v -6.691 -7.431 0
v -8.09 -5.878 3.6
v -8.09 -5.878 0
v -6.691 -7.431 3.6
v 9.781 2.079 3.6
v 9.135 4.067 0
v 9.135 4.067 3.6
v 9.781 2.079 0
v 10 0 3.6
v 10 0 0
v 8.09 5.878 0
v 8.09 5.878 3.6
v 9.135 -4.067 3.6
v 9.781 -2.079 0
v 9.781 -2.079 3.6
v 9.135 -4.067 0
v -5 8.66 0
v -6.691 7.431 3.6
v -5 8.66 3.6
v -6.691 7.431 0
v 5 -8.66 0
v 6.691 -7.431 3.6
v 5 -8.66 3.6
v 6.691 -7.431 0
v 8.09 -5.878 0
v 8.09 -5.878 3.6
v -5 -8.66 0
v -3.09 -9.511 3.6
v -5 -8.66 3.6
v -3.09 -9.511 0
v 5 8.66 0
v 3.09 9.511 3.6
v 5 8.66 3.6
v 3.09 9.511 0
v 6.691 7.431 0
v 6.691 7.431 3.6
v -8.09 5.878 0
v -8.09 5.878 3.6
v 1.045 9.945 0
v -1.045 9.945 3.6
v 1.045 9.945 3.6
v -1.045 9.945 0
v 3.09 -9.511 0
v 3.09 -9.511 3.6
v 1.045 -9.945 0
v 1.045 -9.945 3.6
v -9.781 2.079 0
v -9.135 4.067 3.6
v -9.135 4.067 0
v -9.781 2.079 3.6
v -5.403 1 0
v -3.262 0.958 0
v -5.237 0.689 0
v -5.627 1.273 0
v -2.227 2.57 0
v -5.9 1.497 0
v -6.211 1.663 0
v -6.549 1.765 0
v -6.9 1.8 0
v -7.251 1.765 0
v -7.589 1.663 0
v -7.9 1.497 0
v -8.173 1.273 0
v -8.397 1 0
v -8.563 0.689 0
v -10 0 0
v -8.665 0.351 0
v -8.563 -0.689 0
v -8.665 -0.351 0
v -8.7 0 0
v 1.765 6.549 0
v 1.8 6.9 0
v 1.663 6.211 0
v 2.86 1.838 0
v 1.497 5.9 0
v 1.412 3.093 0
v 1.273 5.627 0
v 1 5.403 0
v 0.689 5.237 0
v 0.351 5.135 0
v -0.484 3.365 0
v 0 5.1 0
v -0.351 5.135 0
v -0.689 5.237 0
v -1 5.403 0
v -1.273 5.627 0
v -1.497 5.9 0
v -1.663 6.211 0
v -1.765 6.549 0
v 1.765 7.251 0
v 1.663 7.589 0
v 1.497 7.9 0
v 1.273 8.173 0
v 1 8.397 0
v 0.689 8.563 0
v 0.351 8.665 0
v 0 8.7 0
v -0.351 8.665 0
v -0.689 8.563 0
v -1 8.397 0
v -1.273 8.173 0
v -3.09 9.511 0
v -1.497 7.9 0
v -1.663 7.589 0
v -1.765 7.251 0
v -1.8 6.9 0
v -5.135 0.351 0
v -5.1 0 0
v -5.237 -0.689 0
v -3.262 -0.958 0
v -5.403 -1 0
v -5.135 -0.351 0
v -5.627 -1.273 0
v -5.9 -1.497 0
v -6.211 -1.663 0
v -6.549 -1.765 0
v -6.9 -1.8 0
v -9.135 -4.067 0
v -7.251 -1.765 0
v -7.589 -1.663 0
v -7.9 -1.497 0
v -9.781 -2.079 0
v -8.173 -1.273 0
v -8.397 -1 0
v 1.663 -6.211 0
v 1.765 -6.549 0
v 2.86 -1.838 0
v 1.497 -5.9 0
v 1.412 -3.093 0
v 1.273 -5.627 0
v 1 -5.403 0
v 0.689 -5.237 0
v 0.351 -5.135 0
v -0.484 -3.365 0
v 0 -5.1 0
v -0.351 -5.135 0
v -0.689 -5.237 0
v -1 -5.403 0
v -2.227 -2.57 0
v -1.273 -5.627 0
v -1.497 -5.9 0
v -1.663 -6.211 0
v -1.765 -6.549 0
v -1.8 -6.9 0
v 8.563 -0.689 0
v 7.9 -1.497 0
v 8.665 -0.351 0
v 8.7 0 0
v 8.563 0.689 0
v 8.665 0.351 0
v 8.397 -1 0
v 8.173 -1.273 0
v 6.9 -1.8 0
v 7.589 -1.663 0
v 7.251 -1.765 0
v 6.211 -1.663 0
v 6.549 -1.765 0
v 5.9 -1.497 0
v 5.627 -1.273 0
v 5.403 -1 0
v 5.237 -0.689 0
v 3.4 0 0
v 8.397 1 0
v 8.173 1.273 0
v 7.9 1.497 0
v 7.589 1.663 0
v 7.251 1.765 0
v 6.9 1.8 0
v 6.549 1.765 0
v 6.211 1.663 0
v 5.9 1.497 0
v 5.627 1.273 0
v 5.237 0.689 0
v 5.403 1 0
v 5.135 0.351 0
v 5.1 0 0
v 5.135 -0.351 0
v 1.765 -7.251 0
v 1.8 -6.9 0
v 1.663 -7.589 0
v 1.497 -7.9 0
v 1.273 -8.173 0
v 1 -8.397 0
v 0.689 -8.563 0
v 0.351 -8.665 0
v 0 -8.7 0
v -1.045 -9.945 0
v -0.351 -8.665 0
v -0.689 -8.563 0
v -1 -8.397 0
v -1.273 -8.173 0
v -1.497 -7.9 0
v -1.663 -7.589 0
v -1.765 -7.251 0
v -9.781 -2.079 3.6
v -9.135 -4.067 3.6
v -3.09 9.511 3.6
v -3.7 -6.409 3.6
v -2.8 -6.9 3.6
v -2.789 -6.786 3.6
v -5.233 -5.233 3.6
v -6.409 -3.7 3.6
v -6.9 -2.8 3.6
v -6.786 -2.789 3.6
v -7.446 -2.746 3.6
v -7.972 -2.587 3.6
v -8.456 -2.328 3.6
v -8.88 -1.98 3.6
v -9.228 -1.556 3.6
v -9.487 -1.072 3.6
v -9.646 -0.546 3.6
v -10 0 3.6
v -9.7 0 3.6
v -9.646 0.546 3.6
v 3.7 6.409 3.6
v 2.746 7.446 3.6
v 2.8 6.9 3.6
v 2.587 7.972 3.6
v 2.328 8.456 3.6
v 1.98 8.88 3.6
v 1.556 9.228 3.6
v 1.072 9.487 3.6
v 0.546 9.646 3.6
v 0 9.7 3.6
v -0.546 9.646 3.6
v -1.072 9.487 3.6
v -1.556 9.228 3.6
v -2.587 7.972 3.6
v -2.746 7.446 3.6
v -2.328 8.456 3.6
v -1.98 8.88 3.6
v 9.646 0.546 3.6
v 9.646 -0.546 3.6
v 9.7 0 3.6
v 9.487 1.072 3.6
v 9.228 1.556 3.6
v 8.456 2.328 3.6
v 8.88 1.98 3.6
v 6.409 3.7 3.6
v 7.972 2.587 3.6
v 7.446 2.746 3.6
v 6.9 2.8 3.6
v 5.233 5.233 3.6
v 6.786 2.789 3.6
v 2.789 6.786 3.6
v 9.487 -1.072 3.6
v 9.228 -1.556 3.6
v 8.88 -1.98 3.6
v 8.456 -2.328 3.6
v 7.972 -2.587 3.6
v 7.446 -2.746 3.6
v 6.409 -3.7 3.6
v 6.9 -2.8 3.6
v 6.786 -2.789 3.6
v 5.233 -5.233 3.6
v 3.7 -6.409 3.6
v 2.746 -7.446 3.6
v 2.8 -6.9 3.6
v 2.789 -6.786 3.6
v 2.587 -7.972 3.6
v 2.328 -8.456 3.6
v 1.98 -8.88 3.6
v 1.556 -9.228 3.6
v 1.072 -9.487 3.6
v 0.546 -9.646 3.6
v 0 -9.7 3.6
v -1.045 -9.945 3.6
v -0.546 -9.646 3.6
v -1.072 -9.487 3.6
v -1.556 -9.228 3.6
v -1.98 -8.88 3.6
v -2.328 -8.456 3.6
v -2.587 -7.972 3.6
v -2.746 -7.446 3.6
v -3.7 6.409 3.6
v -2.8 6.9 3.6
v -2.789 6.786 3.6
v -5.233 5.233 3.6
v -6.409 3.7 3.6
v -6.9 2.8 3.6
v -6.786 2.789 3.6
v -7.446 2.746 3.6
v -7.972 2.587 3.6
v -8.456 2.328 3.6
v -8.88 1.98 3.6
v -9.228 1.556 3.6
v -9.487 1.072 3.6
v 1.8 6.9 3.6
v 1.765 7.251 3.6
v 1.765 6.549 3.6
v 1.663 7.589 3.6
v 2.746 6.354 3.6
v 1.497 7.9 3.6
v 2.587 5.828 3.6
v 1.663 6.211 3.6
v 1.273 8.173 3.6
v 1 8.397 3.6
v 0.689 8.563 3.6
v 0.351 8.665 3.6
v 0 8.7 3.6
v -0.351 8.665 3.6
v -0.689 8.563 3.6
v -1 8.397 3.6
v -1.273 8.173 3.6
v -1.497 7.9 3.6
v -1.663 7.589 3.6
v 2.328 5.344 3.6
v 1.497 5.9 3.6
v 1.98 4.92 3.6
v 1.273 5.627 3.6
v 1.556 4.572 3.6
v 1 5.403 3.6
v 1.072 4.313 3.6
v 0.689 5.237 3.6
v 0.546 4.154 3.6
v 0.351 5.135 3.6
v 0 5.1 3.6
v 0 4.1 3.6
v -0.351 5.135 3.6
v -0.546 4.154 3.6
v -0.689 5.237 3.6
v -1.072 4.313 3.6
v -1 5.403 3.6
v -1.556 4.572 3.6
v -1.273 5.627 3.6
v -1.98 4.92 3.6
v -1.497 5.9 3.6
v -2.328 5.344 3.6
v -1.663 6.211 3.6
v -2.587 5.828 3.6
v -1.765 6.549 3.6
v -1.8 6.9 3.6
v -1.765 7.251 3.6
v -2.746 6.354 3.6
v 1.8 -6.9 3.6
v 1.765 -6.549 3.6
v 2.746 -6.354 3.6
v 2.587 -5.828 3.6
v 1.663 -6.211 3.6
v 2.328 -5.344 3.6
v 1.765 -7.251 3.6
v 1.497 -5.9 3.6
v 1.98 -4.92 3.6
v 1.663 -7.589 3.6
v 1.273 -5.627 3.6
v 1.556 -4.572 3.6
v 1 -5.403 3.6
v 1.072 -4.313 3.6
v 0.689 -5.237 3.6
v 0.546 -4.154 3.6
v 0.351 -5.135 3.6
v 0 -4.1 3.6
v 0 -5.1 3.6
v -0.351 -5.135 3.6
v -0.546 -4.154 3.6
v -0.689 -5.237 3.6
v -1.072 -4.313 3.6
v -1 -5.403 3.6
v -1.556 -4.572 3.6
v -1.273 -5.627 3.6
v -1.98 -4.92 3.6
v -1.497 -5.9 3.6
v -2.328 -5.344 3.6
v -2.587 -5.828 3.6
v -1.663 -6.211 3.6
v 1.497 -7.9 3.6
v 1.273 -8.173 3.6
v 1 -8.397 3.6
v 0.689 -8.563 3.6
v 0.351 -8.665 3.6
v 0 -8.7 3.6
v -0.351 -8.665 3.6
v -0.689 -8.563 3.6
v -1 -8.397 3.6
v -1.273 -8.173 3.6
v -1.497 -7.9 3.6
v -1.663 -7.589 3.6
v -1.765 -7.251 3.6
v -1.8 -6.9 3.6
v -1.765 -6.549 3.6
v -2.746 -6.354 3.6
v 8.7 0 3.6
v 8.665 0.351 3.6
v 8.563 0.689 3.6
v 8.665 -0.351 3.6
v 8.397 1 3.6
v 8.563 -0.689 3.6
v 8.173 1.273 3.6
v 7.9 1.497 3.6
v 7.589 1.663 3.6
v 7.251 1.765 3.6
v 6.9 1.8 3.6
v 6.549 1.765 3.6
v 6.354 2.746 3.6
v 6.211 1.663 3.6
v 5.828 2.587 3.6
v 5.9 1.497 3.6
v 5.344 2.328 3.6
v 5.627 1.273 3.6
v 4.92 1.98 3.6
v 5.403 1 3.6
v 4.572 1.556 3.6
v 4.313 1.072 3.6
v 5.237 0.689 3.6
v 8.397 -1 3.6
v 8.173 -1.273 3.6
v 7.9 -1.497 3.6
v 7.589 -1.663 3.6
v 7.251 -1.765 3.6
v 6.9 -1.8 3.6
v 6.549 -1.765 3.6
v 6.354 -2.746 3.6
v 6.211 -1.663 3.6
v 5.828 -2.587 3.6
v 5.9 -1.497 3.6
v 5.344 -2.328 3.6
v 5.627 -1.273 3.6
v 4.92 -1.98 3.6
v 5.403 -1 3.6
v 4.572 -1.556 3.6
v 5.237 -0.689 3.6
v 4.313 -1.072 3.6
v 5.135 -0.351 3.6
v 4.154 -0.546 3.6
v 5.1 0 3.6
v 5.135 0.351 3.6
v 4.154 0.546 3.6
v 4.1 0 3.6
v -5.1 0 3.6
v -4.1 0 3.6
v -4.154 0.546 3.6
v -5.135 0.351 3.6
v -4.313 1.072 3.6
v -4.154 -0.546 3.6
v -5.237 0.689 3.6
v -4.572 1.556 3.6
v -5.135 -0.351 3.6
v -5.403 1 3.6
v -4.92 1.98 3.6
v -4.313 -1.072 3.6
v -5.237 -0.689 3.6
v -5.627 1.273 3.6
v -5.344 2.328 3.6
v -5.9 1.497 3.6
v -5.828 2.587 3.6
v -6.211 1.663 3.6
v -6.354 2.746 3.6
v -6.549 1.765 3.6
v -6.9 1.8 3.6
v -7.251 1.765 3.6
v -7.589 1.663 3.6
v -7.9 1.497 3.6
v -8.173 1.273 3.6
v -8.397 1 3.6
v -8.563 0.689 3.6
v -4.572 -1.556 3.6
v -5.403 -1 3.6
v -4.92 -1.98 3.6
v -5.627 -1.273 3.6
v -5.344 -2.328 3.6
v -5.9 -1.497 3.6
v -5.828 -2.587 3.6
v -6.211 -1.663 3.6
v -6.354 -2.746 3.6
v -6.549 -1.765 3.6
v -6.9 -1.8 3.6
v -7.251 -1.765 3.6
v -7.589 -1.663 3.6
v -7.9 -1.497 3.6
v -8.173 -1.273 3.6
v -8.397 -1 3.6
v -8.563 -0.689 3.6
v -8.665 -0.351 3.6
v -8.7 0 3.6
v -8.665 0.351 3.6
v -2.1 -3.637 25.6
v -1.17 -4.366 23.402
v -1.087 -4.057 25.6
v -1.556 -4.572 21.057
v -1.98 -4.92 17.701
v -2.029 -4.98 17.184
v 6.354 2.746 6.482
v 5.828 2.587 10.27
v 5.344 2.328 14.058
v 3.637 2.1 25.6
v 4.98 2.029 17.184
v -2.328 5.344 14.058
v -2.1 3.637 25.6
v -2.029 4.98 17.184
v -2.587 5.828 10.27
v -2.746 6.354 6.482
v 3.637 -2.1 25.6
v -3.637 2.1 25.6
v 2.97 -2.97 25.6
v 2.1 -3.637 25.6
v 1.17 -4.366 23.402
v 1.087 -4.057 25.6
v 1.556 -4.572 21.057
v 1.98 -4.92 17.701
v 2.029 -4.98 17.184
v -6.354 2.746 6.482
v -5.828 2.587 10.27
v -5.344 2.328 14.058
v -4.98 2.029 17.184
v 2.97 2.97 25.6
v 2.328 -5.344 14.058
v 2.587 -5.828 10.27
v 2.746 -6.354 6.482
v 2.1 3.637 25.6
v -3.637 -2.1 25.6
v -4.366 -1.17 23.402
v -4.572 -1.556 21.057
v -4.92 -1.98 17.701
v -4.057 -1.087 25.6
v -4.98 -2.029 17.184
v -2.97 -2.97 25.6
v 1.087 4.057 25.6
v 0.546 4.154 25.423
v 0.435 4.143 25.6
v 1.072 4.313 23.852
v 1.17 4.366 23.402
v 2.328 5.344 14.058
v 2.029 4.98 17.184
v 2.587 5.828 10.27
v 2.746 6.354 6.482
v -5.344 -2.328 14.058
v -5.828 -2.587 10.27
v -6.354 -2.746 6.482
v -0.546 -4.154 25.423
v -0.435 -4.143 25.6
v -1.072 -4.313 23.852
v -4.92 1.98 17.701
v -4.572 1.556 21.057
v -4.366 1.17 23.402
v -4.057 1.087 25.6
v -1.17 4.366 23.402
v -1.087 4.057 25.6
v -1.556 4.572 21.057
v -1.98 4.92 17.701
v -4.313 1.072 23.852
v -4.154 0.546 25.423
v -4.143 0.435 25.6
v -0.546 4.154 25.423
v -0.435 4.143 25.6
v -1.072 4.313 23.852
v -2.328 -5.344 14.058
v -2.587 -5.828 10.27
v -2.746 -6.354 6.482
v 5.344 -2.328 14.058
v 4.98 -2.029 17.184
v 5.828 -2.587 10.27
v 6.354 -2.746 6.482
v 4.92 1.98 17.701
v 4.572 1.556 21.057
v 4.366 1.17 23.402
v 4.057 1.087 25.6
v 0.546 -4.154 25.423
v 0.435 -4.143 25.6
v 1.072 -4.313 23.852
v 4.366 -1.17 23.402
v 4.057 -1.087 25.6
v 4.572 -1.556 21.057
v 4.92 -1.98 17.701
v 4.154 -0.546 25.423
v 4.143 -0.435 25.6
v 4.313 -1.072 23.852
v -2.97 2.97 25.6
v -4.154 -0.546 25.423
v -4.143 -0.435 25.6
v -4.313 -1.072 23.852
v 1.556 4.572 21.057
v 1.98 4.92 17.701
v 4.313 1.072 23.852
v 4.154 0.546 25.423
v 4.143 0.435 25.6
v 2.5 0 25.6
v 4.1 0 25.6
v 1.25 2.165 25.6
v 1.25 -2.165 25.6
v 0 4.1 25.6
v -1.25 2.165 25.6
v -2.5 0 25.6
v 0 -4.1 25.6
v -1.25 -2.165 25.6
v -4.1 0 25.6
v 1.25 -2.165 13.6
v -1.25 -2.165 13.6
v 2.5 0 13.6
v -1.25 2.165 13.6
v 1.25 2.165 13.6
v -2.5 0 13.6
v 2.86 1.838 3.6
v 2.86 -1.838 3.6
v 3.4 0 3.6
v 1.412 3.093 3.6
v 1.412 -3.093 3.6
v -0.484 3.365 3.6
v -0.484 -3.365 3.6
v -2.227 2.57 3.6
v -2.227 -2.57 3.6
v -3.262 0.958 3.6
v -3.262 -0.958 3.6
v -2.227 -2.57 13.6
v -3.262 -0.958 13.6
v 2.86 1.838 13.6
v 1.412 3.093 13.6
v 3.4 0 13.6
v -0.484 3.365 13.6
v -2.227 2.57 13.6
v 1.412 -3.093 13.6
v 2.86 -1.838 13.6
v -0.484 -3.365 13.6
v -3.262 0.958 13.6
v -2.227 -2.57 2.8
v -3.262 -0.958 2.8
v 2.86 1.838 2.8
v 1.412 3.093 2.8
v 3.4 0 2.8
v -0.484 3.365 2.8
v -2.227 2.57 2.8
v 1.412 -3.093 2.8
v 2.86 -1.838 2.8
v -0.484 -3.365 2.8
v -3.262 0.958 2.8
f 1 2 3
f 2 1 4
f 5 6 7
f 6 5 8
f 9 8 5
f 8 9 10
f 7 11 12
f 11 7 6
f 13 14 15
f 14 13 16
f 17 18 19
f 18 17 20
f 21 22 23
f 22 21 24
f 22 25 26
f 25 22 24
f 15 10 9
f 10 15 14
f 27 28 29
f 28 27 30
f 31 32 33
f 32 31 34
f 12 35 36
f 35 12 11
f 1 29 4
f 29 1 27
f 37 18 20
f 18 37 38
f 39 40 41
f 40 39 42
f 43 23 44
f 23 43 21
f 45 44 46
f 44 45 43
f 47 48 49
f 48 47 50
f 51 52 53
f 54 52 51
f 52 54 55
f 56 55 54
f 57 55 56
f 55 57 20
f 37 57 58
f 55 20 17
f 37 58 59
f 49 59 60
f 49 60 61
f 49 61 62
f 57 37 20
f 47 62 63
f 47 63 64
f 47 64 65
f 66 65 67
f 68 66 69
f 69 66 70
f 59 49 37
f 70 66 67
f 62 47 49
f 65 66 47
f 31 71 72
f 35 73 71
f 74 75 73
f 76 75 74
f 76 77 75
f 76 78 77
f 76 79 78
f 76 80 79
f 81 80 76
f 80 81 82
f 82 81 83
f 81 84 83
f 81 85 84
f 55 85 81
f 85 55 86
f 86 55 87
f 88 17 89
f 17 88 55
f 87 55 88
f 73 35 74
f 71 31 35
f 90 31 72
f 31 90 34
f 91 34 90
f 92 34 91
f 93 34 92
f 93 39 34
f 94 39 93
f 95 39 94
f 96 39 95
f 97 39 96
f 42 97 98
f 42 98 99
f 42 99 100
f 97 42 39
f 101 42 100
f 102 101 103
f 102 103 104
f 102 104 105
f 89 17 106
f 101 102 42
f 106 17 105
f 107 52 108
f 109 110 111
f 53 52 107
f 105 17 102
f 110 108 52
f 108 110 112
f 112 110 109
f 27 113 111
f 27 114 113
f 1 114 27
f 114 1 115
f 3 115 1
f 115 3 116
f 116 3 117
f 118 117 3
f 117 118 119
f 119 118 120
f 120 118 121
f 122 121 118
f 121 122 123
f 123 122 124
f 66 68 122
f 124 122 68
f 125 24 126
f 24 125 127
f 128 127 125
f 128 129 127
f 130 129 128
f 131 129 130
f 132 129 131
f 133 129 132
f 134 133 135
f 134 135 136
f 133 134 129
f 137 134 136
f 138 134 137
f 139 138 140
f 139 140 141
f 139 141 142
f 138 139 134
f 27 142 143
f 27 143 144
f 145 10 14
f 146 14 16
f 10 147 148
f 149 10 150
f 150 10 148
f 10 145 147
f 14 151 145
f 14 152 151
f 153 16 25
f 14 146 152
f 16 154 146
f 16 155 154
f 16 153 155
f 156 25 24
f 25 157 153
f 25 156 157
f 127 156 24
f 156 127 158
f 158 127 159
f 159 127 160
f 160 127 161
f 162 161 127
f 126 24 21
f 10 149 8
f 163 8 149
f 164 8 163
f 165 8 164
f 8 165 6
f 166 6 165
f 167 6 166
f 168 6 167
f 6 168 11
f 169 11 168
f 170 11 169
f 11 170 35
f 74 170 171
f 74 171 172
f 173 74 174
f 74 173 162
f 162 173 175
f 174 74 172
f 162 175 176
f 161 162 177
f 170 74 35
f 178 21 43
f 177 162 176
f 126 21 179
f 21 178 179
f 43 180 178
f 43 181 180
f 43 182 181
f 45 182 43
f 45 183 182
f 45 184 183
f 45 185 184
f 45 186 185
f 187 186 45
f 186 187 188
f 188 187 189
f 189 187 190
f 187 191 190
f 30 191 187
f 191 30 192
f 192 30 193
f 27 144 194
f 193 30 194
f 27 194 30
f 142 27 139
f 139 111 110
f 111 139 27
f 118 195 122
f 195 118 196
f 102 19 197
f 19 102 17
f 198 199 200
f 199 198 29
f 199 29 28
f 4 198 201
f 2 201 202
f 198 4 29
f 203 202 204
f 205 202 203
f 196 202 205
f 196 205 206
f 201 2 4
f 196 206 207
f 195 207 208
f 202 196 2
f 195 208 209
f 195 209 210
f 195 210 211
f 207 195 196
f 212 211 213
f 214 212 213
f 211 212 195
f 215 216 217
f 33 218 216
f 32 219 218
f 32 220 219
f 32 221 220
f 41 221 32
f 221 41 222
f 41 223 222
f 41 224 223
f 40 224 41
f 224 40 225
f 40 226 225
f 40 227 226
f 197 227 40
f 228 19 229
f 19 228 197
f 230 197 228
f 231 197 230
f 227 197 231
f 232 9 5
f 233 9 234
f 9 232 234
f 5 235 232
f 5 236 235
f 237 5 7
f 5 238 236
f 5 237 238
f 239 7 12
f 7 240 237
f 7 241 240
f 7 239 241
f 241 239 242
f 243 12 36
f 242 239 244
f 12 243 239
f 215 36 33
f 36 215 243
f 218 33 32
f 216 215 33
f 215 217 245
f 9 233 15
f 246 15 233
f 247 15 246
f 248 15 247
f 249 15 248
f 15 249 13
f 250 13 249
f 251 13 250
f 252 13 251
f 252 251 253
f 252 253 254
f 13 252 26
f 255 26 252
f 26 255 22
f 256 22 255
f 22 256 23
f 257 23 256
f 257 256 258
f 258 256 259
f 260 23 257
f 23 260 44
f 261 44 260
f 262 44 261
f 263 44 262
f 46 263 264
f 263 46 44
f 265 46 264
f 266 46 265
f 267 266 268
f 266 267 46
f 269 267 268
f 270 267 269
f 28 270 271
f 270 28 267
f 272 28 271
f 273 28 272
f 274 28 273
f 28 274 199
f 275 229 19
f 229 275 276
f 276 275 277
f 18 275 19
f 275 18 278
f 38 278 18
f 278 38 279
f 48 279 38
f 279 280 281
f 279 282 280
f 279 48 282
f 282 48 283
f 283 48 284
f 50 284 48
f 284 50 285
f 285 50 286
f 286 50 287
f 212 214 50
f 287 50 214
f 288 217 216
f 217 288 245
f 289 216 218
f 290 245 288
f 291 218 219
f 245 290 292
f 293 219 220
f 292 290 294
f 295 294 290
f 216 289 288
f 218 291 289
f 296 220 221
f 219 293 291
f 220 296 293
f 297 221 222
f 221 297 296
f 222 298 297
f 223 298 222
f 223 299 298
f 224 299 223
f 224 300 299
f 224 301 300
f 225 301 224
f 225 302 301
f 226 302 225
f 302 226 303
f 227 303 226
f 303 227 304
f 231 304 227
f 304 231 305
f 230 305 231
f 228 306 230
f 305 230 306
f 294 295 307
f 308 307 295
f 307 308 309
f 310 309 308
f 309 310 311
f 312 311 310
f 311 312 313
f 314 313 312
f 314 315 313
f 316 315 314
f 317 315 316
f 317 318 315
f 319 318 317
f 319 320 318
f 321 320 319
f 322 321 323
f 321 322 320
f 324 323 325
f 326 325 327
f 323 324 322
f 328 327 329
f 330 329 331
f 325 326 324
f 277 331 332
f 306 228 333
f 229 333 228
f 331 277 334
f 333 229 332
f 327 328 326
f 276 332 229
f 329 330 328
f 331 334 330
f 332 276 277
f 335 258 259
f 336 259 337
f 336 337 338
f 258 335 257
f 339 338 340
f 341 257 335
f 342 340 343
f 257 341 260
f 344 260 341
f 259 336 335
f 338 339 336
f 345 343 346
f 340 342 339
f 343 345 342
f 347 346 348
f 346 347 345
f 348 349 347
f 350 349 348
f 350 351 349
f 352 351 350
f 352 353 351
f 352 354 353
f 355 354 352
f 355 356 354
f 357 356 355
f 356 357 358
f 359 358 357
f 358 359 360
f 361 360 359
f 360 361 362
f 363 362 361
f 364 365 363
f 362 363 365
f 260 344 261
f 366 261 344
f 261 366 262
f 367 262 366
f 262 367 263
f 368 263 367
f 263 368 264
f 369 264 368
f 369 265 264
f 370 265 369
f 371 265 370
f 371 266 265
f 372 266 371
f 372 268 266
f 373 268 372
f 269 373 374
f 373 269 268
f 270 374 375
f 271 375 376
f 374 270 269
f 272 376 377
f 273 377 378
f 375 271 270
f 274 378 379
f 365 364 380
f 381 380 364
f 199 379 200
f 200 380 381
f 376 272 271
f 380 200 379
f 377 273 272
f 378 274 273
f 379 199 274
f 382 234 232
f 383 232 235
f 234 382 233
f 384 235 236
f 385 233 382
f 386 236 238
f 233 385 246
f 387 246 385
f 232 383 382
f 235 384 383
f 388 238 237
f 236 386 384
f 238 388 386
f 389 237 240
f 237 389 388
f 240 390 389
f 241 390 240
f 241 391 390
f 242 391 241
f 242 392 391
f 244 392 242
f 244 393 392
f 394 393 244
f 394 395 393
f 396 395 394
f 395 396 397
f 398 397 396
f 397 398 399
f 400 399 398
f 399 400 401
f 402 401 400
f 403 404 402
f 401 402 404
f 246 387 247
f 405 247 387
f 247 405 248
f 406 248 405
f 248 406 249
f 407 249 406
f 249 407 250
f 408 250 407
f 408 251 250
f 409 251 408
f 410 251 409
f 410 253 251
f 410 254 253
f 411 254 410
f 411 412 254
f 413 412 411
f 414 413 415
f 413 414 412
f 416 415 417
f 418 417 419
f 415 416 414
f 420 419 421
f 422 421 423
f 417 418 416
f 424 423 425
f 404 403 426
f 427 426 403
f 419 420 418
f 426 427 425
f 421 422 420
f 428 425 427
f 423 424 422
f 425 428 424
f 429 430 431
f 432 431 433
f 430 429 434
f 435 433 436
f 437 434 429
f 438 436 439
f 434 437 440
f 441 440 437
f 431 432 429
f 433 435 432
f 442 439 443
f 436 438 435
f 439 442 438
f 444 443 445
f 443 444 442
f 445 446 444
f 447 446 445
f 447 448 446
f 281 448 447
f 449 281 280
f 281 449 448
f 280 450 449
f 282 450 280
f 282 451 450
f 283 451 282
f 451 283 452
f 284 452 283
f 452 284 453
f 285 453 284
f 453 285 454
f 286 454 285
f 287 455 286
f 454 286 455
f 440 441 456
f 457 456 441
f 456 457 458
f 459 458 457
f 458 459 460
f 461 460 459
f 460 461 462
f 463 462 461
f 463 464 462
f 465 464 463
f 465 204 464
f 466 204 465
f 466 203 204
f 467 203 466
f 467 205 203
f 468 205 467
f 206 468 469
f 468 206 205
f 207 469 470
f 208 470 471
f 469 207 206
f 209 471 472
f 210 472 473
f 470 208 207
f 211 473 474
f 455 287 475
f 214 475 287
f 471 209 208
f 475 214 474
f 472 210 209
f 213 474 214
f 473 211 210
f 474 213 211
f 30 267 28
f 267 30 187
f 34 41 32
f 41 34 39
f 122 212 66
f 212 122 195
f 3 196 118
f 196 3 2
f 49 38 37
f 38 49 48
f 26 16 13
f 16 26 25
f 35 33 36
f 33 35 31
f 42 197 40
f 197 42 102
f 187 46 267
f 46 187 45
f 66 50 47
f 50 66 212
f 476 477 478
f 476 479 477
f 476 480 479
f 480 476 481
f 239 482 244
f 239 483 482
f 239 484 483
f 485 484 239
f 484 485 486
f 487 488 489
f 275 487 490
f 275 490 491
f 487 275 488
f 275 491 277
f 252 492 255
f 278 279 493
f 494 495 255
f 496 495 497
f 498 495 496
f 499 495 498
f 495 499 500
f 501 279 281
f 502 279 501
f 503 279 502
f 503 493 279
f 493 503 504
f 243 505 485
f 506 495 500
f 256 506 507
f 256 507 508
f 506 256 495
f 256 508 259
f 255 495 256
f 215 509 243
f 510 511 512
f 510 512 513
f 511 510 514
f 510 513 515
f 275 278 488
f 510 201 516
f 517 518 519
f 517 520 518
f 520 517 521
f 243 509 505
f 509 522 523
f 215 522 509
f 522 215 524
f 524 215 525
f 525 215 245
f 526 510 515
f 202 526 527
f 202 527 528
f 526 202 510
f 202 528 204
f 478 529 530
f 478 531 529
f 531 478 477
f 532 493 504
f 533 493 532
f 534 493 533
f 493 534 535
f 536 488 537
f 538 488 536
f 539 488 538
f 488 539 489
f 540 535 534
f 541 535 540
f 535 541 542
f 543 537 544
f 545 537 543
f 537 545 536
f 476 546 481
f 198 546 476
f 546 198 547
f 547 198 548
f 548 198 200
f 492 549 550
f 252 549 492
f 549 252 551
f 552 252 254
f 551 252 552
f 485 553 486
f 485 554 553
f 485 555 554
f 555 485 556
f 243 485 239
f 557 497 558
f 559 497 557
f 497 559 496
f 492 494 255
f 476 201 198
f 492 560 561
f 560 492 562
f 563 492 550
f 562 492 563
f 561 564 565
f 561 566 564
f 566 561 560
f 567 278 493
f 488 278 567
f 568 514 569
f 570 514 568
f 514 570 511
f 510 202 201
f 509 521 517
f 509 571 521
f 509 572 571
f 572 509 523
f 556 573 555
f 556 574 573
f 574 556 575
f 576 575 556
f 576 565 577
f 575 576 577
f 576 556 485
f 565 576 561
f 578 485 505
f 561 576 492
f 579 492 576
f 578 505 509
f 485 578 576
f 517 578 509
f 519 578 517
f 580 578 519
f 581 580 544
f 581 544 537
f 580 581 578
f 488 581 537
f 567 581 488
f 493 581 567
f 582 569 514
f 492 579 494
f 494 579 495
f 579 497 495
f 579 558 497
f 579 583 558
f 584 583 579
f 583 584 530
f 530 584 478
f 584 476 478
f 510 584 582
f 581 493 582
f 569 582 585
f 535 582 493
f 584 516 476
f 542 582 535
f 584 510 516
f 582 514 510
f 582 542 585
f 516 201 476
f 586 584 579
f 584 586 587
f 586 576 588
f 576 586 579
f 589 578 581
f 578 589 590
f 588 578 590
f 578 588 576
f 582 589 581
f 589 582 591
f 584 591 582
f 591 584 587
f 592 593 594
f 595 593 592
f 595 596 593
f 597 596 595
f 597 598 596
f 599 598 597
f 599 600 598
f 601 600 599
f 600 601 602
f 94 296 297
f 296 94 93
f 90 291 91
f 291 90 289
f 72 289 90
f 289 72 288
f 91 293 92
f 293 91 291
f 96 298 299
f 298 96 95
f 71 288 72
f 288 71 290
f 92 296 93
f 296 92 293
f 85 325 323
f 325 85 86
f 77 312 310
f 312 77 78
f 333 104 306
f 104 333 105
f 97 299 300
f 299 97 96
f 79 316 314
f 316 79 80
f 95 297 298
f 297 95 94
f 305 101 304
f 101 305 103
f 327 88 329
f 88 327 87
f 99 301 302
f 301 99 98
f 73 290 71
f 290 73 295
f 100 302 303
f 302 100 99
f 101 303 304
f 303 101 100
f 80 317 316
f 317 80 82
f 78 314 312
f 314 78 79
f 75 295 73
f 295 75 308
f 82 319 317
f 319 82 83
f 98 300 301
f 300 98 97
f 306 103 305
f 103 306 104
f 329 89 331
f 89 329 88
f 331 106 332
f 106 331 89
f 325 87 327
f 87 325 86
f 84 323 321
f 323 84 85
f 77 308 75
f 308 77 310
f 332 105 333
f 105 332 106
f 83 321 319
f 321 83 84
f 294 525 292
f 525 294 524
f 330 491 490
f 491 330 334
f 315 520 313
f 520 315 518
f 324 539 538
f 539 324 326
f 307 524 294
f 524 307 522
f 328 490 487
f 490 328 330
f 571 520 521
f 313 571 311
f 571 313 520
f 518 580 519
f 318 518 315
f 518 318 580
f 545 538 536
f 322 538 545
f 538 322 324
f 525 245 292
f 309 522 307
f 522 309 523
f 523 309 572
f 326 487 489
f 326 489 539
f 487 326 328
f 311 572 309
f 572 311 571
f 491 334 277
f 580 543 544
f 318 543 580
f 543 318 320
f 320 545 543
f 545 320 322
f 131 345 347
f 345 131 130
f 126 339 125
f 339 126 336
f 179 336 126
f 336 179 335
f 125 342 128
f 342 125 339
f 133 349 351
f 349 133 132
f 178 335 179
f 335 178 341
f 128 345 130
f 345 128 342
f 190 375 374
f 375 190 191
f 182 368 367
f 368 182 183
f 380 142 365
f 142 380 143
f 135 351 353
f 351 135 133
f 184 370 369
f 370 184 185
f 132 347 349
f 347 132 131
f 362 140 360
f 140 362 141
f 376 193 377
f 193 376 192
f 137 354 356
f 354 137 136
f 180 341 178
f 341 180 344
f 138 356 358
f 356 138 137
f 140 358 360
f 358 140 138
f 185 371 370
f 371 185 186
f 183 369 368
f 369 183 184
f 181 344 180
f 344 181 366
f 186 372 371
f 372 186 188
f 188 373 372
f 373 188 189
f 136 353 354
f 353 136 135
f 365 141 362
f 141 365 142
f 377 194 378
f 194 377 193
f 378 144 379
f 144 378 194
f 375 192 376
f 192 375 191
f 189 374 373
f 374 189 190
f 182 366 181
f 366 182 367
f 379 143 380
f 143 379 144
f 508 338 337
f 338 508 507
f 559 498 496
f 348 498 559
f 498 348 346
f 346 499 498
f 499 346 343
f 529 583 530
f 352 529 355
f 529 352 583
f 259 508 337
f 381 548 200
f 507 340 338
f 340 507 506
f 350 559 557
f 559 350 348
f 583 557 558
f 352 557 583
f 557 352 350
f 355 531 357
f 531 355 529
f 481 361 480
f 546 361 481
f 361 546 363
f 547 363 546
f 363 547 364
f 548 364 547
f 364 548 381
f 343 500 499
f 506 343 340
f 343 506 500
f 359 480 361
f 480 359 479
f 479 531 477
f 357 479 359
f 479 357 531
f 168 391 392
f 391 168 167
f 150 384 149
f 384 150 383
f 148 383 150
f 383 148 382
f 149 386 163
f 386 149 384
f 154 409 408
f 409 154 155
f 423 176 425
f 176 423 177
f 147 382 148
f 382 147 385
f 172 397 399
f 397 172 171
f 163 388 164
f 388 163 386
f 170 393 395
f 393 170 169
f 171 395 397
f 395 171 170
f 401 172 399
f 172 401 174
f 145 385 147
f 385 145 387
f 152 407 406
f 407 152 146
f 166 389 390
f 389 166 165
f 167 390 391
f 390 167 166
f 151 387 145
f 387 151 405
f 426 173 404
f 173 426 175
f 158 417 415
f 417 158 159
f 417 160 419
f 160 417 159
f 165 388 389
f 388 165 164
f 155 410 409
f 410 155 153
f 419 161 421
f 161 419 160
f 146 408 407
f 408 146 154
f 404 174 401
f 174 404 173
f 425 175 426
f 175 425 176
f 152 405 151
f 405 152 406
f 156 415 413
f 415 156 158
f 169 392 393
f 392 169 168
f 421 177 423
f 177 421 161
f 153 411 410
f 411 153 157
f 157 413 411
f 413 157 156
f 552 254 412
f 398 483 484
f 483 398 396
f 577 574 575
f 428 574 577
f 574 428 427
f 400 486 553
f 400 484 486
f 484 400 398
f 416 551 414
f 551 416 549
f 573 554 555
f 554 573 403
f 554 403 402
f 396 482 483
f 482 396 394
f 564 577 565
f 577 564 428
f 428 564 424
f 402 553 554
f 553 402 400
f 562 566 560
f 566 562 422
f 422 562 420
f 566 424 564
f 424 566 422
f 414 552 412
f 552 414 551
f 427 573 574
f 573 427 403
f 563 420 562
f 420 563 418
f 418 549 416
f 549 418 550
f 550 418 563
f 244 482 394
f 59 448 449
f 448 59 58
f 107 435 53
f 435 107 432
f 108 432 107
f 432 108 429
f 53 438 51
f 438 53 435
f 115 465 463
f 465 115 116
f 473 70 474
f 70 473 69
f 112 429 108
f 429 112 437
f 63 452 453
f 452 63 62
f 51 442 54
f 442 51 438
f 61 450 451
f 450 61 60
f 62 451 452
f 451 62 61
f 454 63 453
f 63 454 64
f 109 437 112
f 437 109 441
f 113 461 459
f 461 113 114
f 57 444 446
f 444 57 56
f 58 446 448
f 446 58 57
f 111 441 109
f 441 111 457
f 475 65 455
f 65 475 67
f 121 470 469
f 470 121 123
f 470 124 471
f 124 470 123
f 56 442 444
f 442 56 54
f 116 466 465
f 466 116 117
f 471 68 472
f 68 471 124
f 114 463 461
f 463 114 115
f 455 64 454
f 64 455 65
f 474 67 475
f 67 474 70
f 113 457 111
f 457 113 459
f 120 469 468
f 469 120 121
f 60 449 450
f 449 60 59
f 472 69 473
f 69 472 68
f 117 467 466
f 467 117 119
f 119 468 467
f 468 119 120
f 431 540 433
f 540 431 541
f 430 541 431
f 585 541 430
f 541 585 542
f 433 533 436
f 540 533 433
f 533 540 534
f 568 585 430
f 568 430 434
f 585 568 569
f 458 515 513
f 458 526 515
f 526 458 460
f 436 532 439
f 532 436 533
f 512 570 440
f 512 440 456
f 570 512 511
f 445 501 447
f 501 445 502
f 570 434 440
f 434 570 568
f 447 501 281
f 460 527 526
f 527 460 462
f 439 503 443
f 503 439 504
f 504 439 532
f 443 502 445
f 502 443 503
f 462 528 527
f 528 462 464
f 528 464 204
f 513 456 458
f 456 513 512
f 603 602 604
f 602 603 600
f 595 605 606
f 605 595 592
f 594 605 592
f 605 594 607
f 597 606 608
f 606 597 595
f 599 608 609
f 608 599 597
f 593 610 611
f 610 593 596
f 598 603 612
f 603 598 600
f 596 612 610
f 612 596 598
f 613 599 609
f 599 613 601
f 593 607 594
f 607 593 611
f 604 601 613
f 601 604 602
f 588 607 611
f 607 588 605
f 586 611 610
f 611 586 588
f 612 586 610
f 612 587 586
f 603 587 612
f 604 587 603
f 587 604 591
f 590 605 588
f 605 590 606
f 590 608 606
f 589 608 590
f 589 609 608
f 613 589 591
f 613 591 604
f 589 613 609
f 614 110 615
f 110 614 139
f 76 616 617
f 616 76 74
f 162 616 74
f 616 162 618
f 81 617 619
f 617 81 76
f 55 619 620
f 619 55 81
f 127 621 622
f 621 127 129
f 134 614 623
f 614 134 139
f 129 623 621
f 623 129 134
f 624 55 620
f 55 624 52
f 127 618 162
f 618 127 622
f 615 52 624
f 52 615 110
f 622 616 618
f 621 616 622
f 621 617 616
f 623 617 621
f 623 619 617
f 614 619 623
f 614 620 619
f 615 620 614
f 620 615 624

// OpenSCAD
plate_radius = 10;
plate_thickness = 3.6;
chuck_height = 22;
chuck_radius = 4.2;
chuck_base_radius = 7.4; // Wider base for the cone
screw_hole_radius = 1.8;
// screw_hole_offset = 6.44;
screw_hole_offset = 6.9;
top_cylinder_height = chuck_height + 2; // Height of cylinders above screw holes
top_cylinder_radius = 2.8; // Radius of cylinders above screw holes

module solid_parts() {
  // Chuck plate
  cylinder(h=plate_thickness, r=plate_radius);

  // Chuck shaft
  translate([0, 0, plate_thickness]) {
    cylinder(h=chuck_height, r1=chuck_base_radius, r2=chuck_radius);
  }
}

module plat_screw_hole() {
  cylinder(h=plate_thickness + 2, r=screw_hole_radius, $fn=32);
}

module magnet_cavity() {
  cylinder(h=10, r=3.4);
}

module plate_screw_head_recess() {
  cylinder(r=3.4, h=3);
}

difference() {
  solid_parts();

  translate([0, 0, plate_thickness]) {
    cylinder(h=chuck_height + 1, r=2.5, $fn=6);
  }

  // Screw holes with cylinders above them
  translate([0, screw_hole_offset, -1]) {
    plat_screw_hole();
  }
  translate([0, screw_hole_offset, plate_thickness]) {
    cylinder(h=top_cylinder_height, r=top_cylinder_radius, $fn=32);
  }

  translate([0, -screw_hole_offset, -1]) {
    plat_screw_hole();
  }
  translate([0, -screw_hole_offset, plate_thickness]) {
    cylinder(h=top_cylinder_height, r=top_cylinder_radius, $fn=32);
  }

  translate([screw_hole_offset, 0, -1]) {
    plat_screw_hole();
  }
  translate([screw_hole_offset, 0, plate_thickness]) {
    cylinder(h=top_cylinder_height, r=top_cylinder_radius, $fn=32);
  }

  translate([-screw_hole_offset, 0, -1]) {
    plat_screw_hole();
  }
  translate([-screw_hole_offset, 0, plate_thickness]) {
    cylinder(h=top_cylinder_height, r=top_cylinder_radius, $fn=32);
  }

  translate([0, 0, plate_thickness]) {
    magnet_cavity();
  }

  translate([0, 0, -0.2]) {
    plate_screw_head_recess();
  }
}
